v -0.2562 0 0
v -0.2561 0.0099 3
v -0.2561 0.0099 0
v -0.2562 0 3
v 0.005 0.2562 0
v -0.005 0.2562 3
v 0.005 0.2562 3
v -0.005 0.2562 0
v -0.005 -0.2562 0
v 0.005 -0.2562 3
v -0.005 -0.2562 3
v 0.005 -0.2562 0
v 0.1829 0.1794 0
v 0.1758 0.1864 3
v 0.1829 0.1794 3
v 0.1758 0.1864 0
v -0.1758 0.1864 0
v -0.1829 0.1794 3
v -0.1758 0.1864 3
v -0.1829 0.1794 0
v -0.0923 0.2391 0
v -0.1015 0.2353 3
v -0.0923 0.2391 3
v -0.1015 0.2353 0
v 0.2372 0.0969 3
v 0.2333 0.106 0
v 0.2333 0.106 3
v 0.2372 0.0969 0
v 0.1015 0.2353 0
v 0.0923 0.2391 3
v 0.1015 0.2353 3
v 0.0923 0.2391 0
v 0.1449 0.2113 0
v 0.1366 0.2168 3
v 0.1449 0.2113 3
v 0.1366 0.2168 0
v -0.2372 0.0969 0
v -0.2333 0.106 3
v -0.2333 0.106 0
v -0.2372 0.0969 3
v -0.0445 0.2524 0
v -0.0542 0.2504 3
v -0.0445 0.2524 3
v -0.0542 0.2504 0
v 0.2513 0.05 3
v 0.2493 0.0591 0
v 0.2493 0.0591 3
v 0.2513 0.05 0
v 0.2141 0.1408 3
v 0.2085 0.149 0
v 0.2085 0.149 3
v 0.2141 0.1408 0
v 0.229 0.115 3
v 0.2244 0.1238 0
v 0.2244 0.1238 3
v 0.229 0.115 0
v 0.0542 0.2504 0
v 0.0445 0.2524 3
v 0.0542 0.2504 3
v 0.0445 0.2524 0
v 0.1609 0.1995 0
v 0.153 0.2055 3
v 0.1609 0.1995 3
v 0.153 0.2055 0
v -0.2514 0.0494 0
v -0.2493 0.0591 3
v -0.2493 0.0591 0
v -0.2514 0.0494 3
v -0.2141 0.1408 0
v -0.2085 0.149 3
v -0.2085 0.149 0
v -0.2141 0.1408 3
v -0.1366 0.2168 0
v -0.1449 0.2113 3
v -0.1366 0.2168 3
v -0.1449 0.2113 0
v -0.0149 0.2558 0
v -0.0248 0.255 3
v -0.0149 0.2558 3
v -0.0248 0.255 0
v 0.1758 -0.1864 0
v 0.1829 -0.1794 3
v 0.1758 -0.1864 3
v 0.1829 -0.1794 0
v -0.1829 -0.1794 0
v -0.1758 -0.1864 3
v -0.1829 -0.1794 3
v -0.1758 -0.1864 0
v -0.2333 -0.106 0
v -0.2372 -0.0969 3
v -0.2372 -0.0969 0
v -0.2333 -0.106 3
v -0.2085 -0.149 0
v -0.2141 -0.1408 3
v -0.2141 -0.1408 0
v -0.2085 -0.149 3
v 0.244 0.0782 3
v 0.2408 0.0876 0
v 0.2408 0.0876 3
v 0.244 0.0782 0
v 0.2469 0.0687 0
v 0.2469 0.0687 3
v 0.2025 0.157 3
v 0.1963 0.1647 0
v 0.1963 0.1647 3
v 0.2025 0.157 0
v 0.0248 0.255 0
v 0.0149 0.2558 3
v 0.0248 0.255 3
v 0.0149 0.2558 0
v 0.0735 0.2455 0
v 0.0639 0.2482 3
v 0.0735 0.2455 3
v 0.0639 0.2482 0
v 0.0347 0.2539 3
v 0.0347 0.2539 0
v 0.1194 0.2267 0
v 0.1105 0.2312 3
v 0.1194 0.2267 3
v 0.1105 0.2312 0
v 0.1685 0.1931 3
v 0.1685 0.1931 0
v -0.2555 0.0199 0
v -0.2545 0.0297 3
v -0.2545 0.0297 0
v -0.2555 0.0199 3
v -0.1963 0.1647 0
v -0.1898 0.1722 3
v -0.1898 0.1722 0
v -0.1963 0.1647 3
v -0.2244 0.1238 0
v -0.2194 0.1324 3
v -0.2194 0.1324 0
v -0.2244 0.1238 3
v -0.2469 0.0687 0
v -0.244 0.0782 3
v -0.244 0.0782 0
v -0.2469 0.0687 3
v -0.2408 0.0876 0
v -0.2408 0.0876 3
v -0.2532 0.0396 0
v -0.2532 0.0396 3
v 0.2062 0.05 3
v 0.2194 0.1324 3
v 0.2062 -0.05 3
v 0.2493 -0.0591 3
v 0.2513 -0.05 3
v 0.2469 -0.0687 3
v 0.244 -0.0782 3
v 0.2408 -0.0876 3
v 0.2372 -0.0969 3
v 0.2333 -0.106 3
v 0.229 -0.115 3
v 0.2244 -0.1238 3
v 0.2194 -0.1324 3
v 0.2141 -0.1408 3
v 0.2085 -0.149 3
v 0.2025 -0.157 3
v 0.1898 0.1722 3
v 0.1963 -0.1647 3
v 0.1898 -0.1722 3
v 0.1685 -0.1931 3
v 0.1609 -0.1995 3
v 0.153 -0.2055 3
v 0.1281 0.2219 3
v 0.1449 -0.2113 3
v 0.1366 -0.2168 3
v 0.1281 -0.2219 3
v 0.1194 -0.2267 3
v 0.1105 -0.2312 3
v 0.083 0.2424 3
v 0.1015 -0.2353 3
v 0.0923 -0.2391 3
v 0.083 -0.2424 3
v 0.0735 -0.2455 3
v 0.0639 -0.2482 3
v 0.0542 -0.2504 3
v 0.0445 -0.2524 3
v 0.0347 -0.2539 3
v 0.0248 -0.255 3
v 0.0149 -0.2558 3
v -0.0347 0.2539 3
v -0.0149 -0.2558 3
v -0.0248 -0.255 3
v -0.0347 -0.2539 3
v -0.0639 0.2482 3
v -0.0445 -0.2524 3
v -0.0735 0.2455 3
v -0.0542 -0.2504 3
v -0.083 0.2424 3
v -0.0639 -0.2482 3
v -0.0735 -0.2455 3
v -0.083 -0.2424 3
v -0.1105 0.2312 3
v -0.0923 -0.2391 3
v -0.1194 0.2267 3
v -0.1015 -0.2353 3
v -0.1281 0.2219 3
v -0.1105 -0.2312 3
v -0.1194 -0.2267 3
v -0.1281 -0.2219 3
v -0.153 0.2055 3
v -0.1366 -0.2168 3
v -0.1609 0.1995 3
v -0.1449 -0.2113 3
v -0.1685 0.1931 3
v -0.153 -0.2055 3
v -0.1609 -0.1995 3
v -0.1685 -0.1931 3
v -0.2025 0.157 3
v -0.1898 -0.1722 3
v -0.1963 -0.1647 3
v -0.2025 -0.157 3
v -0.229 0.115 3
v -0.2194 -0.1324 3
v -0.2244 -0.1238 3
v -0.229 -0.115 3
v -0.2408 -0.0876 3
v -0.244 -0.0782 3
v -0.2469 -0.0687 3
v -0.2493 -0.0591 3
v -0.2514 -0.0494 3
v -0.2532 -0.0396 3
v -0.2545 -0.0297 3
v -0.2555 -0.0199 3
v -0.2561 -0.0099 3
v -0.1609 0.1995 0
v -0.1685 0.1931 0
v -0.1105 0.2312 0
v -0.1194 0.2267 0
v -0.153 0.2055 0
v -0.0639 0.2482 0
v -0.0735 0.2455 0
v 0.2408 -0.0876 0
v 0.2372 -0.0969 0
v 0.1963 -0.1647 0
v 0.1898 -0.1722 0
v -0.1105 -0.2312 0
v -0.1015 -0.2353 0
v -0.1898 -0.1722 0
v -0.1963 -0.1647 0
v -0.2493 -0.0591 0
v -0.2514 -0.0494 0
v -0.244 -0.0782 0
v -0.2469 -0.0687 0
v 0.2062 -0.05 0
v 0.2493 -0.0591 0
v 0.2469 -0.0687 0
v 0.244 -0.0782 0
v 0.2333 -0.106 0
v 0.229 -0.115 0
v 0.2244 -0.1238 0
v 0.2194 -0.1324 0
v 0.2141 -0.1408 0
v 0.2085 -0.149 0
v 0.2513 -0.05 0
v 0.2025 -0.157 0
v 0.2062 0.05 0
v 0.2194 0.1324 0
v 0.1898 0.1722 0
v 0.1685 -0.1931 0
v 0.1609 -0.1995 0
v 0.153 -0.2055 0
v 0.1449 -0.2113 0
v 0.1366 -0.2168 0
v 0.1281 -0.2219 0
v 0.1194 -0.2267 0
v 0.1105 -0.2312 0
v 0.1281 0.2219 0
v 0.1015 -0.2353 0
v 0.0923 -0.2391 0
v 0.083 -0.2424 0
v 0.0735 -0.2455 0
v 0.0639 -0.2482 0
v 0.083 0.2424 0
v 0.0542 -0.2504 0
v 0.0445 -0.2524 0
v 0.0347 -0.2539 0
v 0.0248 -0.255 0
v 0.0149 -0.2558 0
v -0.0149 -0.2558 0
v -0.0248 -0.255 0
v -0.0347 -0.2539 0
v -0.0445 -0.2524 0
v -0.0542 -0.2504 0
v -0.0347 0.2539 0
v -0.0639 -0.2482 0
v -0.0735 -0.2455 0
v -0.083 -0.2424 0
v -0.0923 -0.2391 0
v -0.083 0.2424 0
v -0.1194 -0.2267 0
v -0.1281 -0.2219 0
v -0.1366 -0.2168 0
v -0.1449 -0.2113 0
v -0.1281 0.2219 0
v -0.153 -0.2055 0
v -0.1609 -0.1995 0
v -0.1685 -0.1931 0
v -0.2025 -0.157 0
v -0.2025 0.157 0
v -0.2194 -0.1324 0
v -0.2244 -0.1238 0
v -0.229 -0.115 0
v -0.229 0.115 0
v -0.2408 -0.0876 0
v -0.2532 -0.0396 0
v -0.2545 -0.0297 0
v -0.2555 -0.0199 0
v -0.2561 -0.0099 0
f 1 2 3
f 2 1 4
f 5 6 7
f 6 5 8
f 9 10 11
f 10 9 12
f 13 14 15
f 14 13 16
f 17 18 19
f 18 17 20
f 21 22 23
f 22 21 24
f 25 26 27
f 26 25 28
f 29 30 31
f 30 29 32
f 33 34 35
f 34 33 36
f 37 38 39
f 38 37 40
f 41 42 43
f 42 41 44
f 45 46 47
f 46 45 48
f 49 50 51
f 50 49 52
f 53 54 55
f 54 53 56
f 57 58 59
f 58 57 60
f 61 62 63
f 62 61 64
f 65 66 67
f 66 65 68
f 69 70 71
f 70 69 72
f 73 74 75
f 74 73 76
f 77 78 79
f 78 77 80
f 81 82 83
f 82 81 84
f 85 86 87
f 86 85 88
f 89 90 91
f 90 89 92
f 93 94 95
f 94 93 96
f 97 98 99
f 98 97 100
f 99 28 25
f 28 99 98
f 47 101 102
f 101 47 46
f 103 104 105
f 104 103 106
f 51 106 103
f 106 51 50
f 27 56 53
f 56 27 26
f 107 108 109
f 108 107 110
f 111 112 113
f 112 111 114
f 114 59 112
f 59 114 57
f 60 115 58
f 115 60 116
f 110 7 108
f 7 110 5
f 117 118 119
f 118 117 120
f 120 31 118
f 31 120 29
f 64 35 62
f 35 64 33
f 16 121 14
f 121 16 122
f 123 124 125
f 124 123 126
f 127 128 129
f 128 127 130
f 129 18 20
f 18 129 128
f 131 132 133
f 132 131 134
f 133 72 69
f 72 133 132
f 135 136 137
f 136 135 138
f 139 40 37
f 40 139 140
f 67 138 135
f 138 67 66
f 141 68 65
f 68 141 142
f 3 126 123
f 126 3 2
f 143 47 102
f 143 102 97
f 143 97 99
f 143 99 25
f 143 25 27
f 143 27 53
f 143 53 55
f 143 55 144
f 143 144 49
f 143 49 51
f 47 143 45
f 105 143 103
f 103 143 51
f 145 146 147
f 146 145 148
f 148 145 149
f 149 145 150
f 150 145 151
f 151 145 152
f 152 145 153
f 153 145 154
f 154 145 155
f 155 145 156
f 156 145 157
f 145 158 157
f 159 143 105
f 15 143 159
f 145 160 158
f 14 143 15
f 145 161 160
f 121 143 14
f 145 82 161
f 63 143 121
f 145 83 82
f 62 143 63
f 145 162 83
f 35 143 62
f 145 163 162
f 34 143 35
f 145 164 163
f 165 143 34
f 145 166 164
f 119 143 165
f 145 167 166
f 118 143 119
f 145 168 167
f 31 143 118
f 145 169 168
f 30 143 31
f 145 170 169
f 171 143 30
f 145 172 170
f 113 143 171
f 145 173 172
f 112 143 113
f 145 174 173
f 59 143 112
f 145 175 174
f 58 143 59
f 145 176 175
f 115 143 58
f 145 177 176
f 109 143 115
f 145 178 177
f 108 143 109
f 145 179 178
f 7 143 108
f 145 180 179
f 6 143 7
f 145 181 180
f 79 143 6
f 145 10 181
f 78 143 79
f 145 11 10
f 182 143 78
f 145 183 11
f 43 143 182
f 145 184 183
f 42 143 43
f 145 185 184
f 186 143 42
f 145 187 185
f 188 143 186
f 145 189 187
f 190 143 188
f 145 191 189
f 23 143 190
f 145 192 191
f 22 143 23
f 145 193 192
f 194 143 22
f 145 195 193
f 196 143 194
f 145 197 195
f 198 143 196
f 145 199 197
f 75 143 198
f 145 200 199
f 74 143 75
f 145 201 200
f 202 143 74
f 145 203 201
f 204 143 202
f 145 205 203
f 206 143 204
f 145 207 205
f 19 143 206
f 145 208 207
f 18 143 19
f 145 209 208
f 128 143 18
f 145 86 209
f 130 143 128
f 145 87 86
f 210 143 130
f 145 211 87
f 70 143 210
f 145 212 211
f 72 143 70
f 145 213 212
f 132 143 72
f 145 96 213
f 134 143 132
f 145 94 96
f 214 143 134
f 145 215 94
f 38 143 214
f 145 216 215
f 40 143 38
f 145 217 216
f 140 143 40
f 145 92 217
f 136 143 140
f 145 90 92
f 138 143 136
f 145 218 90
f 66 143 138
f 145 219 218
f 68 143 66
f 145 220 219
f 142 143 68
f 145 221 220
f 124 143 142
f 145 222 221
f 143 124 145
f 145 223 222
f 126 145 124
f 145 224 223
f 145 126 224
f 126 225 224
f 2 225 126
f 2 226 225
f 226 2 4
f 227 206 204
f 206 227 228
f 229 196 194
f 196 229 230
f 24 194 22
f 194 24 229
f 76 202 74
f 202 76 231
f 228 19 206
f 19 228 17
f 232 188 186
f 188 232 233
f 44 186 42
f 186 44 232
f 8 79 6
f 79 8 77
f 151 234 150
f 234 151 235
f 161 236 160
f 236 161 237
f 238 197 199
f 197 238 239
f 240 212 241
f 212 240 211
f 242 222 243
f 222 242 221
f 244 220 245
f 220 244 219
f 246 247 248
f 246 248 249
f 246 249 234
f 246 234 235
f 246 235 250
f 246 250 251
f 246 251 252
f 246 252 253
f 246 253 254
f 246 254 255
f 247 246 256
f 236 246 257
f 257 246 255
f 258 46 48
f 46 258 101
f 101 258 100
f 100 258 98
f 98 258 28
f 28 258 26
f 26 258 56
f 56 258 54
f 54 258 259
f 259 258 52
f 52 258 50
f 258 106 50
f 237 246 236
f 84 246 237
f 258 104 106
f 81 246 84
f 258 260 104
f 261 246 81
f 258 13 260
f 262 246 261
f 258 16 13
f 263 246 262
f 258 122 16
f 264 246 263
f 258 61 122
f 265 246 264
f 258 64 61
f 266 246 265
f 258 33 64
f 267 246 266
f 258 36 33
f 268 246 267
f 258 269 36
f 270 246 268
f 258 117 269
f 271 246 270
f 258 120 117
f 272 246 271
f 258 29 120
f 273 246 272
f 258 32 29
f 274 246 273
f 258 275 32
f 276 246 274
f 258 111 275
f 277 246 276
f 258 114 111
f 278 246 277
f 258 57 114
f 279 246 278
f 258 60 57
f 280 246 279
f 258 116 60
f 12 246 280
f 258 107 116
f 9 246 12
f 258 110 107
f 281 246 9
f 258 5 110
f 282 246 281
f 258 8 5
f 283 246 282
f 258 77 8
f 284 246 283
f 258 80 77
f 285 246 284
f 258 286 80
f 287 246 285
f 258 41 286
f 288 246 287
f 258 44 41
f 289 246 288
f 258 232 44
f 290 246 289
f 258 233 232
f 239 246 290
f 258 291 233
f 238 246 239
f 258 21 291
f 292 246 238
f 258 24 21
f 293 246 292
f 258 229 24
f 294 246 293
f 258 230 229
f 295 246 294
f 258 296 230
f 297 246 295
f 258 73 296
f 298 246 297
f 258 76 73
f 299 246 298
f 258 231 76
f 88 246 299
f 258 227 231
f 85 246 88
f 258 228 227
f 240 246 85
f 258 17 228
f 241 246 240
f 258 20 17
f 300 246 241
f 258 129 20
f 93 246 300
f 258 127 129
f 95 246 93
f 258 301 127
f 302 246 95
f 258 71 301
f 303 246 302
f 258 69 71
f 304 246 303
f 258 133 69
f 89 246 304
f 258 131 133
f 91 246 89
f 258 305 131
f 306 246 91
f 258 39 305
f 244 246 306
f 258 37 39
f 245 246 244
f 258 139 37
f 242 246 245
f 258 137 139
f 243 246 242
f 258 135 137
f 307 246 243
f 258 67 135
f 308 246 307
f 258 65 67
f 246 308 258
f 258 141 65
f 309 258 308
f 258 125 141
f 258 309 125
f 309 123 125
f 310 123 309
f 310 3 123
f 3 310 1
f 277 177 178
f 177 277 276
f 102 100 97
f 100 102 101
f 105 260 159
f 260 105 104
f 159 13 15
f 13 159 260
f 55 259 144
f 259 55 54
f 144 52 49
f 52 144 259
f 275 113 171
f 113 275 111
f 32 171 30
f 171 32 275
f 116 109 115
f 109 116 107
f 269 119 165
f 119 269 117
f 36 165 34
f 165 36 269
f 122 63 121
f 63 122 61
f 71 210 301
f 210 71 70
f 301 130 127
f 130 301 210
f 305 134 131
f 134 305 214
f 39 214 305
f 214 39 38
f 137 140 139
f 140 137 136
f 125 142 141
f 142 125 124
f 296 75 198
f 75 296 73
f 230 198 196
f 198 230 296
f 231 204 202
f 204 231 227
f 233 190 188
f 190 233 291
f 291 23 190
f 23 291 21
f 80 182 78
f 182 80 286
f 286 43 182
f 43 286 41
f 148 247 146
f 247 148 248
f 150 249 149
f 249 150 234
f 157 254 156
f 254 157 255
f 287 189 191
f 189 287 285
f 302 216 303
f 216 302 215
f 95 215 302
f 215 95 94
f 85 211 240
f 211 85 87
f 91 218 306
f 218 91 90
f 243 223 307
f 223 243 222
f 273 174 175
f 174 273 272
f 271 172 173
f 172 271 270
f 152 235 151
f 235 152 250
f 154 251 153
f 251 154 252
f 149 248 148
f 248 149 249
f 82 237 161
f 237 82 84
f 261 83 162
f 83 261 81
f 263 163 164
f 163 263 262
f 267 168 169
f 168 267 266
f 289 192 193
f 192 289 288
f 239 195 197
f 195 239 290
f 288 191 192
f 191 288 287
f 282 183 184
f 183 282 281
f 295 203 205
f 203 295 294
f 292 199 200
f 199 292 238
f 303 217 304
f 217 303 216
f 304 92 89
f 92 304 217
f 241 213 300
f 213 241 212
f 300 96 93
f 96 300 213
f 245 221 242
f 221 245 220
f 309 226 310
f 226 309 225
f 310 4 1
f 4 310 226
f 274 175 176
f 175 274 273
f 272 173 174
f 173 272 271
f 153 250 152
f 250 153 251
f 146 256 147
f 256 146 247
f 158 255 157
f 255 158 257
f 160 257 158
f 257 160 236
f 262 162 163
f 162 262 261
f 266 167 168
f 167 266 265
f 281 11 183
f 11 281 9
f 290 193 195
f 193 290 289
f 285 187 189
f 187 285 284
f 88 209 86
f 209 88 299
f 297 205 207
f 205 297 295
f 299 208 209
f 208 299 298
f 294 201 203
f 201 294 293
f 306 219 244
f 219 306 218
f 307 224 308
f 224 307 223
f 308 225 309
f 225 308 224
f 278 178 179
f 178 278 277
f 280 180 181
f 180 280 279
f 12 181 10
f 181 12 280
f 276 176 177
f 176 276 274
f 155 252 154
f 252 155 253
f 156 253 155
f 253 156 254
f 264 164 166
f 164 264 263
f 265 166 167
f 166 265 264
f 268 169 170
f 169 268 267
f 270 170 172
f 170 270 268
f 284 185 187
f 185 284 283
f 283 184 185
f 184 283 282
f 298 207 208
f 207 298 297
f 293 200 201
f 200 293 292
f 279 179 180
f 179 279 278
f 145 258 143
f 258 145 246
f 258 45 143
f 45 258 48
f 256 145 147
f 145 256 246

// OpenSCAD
// Global resolution
$fs = 0.01;  // Don't generate smaller facets than 0.1 mm
$fa = 1;    // Don't generate larger angles than 5 degrees

mainHeight = 2.9;
error=.1;
shaftDia = .5125;
keySize = .1;



module Shaft(){
    difference(){
        cylinder(mainHeight+error,shaftDia/2,shaftDia/2);
        translate([shaftDia/2,0,mainHeight/2+error])
        cube([keySize,keySize,mainHeight+2*error],true);
    }
}
Shaft();
